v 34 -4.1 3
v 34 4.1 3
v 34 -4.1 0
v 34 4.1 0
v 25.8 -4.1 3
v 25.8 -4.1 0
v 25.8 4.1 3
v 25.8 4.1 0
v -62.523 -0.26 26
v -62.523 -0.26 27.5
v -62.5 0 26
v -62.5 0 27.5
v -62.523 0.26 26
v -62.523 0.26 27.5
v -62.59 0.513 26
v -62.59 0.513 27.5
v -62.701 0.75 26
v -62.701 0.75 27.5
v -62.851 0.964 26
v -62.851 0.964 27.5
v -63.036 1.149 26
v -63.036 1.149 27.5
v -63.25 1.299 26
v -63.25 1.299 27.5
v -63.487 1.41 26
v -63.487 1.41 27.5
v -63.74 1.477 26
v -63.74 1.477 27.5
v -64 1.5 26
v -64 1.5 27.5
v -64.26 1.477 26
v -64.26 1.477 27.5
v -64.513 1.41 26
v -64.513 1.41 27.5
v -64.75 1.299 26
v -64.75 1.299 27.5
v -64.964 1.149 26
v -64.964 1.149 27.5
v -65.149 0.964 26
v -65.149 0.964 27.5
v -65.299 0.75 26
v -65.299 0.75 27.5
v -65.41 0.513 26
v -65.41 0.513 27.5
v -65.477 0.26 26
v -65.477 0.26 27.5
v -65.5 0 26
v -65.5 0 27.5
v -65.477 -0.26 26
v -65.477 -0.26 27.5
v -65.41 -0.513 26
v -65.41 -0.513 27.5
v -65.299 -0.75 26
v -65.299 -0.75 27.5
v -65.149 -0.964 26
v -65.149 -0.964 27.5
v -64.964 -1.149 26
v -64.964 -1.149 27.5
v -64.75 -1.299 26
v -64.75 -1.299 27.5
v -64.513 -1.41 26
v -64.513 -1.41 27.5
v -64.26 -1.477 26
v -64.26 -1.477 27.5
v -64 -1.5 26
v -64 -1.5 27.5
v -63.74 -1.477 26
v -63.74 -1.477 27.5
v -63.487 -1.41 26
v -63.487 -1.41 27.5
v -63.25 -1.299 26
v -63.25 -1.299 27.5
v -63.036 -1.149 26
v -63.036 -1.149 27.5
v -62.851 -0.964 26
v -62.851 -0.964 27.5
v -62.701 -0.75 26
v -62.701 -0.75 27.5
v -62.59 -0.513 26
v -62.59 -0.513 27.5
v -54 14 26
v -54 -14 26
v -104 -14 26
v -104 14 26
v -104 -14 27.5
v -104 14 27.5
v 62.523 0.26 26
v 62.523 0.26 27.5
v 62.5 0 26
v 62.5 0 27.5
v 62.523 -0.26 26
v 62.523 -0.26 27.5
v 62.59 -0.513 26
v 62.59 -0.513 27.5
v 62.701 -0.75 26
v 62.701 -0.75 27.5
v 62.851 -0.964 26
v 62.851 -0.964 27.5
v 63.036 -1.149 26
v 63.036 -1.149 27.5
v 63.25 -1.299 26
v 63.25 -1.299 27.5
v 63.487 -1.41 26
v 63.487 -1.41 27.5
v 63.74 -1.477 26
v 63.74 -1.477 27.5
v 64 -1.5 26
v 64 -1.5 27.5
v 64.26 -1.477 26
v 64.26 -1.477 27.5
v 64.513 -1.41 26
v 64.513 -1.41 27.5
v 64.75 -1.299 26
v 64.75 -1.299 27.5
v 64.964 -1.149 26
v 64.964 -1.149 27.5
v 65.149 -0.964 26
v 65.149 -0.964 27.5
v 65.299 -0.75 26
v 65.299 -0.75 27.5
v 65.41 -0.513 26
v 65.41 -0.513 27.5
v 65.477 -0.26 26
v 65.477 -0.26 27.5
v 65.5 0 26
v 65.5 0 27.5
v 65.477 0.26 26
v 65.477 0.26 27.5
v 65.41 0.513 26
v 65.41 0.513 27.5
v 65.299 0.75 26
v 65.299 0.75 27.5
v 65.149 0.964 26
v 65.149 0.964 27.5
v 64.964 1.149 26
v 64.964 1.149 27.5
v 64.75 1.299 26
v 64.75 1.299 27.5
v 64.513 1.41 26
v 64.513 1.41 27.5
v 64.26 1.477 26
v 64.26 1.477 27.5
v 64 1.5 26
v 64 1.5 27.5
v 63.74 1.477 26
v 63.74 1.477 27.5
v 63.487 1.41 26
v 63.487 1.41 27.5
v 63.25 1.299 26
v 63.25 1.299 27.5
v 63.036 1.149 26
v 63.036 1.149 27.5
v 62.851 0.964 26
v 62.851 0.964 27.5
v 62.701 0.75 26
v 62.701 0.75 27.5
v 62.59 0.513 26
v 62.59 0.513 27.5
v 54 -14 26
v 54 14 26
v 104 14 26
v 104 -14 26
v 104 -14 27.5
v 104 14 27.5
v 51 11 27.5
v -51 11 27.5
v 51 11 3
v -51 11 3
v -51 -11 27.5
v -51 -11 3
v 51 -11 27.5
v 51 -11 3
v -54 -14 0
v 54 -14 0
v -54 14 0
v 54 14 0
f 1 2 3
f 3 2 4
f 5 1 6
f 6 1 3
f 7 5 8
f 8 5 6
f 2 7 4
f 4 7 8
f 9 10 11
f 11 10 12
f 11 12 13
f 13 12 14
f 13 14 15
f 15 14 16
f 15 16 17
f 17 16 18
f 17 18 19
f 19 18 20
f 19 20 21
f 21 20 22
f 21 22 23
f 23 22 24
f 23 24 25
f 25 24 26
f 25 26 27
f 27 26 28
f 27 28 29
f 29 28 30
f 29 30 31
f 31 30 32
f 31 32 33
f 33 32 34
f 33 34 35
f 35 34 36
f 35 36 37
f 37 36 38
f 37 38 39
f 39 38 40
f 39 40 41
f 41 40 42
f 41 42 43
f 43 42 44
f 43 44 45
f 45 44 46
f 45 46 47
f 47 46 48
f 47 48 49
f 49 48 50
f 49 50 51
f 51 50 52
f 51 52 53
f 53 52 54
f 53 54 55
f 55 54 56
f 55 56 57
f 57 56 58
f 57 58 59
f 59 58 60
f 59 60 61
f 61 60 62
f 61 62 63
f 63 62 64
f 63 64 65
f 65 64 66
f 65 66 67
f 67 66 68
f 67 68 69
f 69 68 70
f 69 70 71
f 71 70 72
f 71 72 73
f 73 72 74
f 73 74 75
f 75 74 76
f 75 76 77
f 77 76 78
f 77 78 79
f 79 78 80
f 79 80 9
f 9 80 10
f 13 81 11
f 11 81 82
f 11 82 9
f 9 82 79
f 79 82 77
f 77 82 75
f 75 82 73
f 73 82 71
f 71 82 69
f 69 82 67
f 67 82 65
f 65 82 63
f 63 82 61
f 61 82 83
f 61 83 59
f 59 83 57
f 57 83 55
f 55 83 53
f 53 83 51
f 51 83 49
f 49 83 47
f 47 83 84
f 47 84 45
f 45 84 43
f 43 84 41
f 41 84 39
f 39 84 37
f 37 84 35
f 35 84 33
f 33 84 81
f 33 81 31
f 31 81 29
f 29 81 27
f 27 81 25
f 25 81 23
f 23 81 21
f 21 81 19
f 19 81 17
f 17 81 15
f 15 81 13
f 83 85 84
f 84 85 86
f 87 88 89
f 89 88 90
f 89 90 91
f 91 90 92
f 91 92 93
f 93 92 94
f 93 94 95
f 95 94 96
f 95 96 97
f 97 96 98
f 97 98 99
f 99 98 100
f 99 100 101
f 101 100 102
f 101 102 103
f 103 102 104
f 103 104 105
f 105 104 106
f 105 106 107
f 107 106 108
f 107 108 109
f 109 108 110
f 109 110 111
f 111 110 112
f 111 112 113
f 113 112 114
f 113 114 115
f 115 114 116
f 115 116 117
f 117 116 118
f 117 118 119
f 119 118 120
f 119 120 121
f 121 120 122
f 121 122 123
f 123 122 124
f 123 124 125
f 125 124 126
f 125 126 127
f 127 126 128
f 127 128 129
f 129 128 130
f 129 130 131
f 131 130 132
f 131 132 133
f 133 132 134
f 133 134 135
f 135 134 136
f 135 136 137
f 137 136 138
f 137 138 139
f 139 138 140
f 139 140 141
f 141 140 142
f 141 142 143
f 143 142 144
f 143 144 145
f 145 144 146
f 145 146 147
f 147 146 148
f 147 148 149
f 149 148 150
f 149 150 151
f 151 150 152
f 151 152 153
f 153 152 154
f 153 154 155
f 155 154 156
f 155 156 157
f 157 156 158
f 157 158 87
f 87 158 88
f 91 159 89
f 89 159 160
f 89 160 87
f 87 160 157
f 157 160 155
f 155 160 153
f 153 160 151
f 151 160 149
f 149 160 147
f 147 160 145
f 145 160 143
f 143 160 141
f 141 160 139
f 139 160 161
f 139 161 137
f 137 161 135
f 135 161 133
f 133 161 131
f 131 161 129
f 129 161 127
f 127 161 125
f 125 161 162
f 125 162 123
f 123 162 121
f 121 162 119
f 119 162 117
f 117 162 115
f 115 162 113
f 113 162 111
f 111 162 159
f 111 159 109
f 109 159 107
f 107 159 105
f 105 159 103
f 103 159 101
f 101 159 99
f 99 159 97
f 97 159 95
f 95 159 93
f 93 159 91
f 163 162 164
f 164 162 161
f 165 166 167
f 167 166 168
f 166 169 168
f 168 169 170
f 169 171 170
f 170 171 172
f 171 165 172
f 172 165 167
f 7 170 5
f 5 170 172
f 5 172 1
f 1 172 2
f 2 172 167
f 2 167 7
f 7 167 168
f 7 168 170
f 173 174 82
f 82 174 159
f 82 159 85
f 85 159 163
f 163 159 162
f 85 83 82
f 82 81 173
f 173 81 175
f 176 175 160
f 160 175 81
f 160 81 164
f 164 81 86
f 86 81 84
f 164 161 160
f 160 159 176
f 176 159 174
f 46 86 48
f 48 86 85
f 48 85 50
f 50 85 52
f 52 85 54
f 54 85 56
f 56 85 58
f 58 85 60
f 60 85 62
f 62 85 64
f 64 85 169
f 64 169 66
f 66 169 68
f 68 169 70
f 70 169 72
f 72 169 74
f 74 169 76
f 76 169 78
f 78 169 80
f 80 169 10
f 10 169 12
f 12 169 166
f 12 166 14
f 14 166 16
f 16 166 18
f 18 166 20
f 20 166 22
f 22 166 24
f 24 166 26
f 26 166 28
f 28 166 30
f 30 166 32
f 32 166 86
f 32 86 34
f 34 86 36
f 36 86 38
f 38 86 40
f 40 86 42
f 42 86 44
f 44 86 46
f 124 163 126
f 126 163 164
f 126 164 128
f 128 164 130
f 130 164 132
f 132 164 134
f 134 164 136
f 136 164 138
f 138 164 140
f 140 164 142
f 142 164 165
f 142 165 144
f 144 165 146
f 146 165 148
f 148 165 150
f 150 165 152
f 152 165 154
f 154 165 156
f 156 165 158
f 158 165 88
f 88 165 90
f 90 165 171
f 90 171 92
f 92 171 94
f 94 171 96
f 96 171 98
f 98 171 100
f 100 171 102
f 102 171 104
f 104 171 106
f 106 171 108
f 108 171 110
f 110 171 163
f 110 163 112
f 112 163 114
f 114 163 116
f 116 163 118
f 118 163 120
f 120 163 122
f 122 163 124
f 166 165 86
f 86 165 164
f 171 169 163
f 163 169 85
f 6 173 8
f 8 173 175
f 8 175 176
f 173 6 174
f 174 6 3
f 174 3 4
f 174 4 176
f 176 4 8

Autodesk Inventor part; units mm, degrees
ref_plane "YZ Plane" through (0, 0, 0) normal (1, 0, 0) x (0, 1, 0)
ref_plane "XZ Plane" through (0, 0, 0) normal (0, 1, 0) x (-1, 0, 0)
ref_plane "XY Plane" through (0, 0, 0) normal (0, 0, 1) x (1, 0, 0)
sketch "Эскиз1" plane through (0, 0, 0) normal (0, 0, 1) x (1, 0, 0)
  line L0 (-54, -14) -> (54, -14)
  line L1 (54, -14) -> (54, 14)
  line L2 (54, 14) -> (-54, 14)
  line L3 (-54, 14) -> (-54, -14)
  line L4 (-54, -14) -> (54, 14) construction
  line L5 (54, -14) -> (-54, 14) construction
  point P0 (0, 0)
  dimension "d0" = 108
  dimension "d1" = 28
extrude "Выдавливание1" add sketch "Эскиз1" along normal blind 27.5
sketch "Эскиз2" plane through (0, 0, 27.5) normal (0, 0, 1) x (1, 0, 0)
  line L0 (-51, -11) -> (51, -11)
  line L1 (51, -11) -> (51, 11)
  line L2 (51, 11) -> (-51, 11)
  line L3 (-51, 11) -> (-51, -11)
  line L4 (-51, -11) -> (51, 11) construction
  line L5 (51, -11) -> (-51, 11) construction
  line L6 (54, 14) -> (-54, 14) projected
  line L7 (54, -14) -> (54, 14) projected
  point P0 (0, 0)
  dimension "d4" = 3
  dimension "d5" = 3
extrude "Выдавливание2" cut sketch "Эскиз2" against normal blind 24.5
sketch "Эскиз3" plane through (54, -14, 0) normal (1, 0, 0) x (0, 0, -1)
  line L0 (0, 28) -> (-27.5, 28) projected
  line L1 (0, 0) -> (-27.5, 0) projected
  line L2 (-27.5, 28) -> (-26, 28)
  line L3 (-26, 28) -> (-26, 0)
  line L4 (-26, 0) -> (-27.5, 0)
  line L5 (-27.5, 0) -> (-27.5, 28)
  point P0 (0, 14)
  dimension "d8" = 1.5
extrude "Выдавливание3" add sketch "Эскиз3" along normal blind 50
sketch "Эскиз4" plane through (0, 0, 27.5) normal (0, 0, 1) x (1, 0, 0)
  circle A0 centre (64, 0) radius 1.5
  line L0 (-54, -14) -> (104, -14) projected
  point P0 (0, 0)
  point P1 (54, -14)
  dimension "d11" = 3
  dimension "d12" = 14
  dimension "d13" = 10
extrude "Выдавливание4" cut sketch "Эскиз4" against normal blind 50
mirror "Зеркальное отражение1" about plane through (0, 0, 0) normal (1, 0, 0) of "Выдавливание3", "Выдавливание4"
sketch "Эскиз5" plane through (0, 0, 0) normal (0, 0, -1) x (-1, 0, 0)
  line L0 (-34, 4.1) -> (-25.8, 4.1)
  line L1 (-25.8, 4.1) -> (-25.8, -4.1)
  line L2 (-25.8, -4.1) -> (-34, -4.1)
  line L3 (-34, -4.1) -> (-34, 4.1)
  line L4 (-54, -14) -> (-54, 14) projected
  point P0 (0, 0)
  point P1 (-25.8, 0)
  dimension "d16" = 8.2
  dimension "d17" = 8.2
  dimension "d18" = 20
extrude "Выдавливание5" cut sketch "Эскиз5" against normal blind 10
equation "\"d16\" = d17"
properties part number "000.009 - Короб" material "Пластик АБС"
